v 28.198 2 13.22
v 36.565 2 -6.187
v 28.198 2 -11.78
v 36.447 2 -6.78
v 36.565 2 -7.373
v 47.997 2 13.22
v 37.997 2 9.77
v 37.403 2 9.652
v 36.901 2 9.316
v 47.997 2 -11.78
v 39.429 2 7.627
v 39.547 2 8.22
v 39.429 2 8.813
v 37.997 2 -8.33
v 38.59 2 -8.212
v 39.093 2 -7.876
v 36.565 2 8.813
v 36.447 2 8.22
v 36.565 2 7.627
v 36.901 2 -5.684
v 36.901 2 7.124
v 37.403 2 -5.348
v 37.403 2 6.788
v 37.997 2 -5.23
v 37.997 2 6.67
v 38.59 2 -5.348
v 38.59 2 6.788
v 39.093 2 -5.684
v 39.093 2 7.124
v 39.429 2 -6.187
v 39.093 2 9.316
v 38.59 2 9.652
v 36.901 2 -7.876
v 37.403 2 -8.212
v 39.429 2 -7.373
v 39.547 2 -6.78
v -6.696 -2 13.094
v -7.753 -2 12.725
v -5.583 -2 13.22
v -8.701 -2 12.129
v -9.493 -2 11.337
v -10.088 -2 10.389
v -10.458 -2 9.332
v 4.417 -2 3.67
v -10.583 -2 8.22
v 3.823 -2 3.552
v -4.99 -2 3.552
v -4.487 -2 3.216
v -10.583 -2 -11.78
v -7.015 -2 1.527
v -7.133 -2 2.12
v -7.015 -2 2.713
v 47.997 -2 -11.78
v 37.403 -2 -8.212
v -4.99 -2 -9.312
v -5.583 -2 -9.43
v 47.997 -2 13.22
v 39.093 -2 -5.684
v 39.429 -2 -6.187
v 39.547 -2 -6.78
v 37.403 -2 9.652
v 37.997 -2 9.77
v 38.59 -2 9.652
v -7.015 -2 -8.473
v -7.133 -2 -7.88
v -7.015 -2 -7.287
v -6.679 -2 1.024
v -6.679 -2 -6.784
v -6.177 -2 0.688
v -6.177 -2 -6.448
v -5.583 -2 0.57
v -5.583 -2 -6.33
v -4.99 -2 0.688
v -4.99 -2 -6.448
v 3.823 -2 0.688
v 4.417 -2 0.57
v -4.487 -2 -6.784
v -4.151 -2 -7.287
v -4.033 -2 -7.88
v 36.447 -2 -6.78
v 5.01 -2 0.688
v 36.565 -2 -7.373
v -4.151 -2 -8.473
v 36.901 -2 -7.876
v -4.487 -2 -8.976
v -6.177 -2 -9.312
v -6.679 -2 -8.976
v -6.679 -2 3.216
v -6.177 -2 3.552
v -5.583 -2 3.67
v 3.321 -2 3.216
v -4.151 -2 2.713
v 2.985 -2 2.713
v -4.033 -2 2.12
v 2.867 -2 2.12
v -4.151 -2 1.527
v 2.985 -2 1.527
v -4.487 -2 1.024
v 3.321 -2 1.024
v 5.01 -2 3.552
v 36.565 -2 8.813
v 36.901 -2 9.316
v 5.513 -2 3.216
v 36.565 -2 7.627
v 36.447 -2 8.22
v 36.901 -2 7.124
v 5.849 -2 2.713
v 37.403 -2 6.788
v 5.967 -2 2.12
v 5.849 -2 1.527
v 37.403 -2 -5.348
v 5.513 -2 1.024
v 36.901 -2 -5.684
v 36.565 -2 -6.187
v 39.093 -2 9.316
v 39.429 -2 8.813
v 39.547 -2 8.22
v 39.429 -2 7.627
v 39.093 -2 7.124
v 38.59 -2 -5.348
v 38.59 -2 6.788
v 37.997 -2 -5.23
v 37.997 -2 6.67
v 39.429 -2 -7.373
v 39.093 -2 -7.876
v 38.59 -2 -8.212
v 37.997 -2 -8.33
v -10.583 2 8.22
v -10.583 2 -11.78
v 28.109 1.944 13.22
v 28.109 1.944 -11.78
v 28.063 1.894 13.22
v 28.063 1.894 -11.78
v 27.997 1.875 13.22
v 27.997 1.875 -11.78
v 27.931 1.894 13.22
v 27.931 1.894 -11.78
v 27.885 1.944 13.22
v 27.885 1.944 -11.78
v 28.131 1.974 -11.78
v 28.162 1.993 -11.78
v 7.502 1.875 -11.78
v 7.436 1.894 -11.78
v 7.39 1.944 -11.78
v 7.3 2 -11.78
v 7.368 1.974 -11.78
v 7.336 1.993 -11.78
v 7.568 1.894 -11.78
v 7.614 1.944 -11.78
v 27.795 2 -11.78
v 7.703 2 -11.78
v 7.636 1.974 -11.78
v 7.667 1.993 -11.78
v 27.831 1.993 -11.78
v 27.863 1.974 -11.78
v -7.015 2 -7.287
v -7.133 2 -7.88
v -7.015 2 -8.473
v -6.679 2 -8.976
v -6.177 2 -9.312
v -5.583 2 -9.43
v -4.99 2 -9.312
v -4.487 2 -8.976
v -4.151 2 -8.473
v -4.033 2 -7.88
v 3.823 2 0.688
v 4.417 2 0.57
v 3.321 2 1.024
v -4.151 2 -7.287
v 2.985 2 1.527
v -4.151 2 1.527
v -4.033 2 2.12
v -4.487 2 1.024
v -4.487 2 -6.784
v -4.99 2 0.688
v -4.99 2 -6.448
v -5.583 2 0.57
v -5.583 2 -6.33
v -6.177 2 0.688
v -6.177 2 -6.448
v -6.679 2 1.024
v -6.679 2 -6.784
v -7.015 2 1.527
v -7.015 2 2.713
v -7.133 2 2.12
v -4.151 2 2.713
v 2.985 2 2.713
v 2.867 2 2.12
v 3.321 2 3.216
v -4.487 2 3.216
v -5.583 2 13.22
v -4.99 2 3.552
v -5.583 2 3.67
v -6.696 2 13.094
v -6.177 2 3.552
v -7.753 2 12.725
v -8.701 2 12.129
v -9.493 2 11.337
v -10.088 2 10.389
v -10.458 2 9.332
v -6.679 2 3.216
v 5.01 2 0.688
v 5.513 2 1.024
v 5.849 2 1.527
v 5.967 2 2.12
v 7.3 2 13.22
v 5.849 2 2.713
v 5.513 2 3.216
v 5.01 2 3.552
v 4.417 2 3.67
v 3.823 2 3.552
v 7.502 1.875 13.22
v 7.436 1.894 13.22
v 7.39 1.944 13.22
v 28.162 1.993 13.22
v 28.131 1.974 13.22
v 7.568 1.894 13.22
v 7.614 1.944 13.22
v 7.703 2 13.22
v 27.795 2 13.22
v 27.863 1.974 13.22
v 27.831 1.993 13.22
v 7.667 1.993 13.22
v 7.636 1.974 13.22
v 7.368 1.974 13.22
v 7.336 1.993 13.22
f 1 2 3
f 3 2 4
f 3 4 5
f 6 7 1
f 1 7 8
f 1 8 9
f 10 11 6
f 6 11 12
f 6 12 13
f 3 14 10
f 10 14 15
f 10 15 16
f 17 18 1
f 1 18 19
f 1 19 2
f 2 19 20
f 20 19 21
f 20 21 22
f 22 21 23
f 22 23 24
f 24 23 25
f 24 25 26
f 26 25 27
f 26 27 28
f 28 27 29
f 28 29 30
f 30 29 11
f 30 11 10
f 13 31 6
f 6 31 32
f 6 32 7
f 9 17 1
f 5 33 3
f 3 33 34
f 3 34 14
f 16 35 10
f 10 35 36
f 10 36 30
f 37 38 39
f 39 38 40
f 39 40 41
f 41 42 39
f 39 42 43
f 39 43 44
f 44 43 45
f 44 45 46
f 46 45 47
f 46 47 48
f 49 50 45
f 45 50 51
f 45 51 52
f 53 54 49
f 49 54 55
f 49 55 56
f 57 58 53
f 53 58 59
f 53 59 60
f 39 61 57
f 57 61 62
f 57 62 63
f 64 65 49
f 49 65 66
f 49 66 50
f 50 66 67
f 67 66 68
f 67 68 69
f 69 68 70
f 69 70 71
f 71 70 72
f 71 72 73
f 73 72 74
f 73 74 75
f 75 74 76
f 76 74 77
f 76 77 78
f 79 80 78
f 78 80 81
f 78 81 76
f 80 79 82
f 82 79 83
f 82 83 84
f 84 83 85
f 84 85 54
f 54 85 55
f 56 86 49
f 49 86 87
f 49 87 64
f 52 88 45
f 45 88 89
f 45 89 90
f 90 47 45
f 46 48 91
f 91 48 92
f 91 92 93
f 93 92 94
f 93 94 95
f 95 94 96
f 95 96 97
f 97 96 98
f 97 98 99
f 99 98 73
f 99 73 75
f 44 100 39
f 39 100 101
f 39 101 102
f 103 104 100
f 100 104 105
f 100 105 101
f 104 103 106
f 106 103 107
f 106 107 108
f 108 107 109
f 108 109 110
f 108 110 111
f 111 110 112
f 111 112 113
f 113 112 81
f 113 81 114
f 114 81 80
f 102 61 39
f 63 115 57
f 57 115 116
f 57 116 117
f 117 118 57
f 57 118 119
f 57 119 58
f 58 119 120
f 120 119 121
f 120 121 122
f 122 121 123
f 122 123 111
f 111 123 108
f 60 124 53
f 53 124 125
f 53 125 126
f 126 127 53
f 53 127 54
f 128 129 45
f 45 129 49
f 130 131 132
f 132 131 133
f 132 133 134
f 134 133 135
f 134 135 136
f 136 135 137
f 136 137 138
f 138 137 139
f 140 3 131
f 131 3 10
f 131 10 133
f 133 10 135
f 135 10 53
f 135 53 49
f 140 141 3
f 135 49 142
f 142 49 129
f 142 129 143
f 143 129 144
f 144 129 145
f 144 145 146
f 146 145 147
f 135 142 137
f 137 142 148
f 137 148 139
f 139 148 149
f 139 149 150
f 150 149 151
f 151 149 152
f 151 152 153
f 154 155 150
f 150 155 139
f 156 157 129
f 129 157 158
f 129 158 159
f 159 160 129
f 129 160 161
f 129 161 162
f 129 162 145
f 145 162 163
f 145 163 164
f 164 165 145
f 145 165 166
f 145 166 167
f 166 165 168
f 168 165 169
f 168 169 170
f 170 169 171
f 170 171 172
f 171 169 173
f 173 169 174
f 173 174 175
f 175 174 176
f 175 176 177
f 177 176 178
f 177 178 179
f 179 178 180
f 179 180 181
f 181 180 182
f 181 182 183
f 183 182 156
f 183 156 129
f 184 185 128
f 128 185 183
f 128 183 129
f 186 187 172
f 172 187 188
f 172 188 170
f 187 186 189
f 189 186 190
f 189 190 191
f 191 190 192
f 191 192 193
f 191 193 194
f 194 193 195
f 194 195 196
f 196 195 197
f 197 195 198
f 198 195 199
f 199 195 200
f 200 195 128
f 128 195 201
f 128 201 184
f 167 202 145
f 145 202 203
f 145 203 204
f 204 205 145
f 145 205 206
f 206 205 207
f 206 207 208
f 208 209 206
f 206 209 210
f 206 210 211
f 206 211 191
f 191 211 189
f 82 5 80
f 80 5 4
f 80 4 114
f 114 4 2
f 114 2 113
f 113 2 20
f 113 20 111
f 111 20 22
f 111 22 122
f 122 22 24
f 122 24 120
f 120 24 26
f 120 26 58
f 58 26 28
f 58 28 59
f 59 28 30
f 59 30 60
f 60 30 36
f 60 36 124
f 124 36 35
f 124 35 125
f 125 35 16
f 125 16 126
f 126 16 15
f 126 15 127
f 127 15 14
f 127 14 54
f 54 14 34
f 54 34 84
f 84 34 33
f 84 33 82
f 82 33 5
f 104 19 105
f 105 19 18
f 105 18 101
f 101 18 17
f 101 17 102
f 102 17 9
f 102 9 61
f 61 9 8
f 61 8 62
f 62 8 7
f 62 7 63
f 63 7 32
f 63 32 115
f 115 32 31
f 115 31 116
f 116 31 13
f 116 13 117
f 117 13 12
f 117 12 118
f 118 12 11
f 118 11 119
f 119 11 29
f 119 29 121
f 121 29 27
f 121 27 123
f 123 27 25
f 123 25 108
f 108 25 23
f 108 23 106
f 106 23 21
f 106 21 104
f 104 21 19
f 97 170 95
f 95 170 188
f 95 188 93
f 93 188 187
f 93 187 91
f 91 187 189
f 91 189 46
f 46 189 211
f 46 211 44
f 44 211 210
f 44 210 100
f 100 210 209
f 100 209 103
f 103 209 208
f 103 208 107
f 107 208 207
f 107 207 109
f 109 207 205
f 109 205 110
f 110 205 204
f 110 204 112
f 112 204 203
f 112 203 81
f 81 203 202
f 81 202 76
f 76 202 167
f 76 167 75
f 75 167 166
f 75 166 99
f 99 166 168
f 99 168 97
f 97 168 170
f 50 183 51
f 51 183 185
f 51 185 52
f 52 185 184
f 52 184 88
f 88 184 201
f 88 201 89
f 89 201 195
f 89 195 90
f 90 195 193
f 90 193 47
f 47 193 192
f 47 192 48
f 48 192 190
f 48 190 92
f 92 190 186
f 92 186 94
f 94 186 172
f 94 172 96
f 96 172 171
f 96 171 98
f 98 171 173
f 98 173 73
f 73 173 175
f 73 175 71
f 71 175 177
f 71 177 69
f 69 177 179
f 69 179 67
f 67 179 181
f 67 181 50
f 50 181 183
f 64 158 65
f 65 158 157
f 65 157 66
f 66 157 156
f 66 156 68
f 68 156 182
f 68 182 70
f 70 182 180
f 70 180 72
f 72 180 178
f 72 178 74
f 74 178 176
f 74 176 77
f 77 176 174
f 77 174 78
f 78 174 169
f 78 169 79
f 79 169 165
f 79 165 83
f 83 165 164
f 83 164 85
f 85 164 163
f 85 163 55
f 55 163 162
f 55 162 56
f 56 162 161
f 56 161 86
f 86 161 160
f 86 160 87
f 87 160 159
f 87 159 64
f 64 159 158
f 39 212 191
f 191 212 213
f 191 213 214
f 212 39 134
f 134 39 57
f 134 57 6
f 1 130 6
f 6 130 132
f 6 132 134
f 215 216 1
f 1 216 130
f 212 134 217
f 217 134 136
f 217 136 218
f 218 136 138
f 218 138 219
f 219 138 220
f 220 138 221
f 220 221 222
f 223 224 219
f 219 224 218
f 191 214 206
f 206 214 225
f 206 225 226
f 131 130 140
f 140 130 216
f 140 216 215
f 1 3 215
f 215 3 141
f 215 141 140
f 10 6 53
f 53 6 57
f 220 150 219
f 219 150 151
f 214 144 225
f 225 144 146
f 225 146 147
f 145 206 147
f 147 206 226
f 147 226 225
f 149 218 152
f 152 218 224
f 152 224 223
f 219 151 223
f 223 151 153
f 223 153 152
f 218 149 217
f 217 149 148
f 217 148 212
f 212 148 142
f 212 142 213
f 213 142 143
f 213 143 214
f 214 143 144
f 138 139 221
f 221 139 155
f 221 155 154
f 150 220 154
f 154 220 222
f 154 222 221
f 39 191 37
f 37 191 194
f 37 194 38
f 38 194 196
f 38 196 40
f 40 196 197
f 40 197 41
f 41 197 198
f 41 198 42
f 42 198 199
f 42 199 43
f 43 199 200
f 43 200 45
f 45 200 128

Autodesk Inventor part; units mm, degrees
ref_plane "YZ Plane" through (0, 0, 0) normal (1, 0, 0) x (0, 1, 0)
ref_plane "XZ Plane" through (0, 0, 0) normal (0, 1, 0) x (-1, 0, 0)
ref_plane "XY Plane" through (0, 0, 0) normal (0, 0, 1) x (1, 0, 0)
sketch "Sketch1" plane through (0, 0, 0) normal (0, 1, 0) x (-1, 0, 0)
  line L0 (10.5834, 13.2197) -> (-47.9966, 13.2197)
  line L1 (-47.9966, 13.2197) -> (-47.9966, -11.7803)
  line L2 (-47.9966, -11.7803) -> (10.5834, -11.7803)
  line L3 (10.5834, -11.7803) -> (10.5834, 13.2197)
  circle A0 centre (5.5834, -7.8803) radius 1.55
  circle A1 centre (5.5834, 2.1197) radius 1.55
  circle A2 centre (-4.4166, 2.1197) radius 1.55
  circle A3 centre (-37.9966, 8.2197) radius 1.55
  circle A4 centre (-37.9966, -6.7803) radius 1.55
  point P0 (0, 0)
  dimension "d0" = 3.1
  dimension "d1" = 3.9
  dimension "d4" = 10
  dimension "d11" = 10
  dimension "d16" = 25
  dimension "d17" = 5
  dimension "d18" = 58.58
  dimension "d19" = 3.1
  dimension "d20" = 10
  dimension "d23" = 15
  dimension "d28" = 5
extrude "Extrusion1" add sketch "Sketch1" along normal mid plane 4
sketch "Sketch2" plane through (47.9966, 2, -11.7803) normal (0, 0, -1) x (-1, 0, 0)
  arc A0 (40.37, 0) -> (40.62, 0) centre (40.495, 0) ccw
  line L0 (0, 0) -> (58.58, 0) projected
  line L1 (58.58, -4) -> (58.58, 0) projected
  circle A1 centre (20, 0) radius 0.125
  line L2 (0, -4) -> (0, 0) projected
  point P0 (47.9966, -2)
  point P1 (58.58, -2)
  point P2 (20.125, 0)
  point P3 (19.875, 0)
  dimension "d31" = 0.25
  dimension "d34" = 18.085
  dimension "d35" = 0.25
  dimension "d36" = 20
extrude "Extrusion2" cut sketch "Sketch2" against normal up to surface (25 mm away) contours L0 A0 | A1 L0 picked at (20, -0.0736)
fillet "Fillet1" radius 0.1 4 edges at (7.6266, 2, 0.7197) (7.3766, 2, 0.7197) (28.1216, 2, 0.7197) (27.8716, 2, 0.7197)
fillet "Fillet2" radius 5 1 edges at (-10.5834, 0, 13.2197)
properties part number "GVS_Plate"
